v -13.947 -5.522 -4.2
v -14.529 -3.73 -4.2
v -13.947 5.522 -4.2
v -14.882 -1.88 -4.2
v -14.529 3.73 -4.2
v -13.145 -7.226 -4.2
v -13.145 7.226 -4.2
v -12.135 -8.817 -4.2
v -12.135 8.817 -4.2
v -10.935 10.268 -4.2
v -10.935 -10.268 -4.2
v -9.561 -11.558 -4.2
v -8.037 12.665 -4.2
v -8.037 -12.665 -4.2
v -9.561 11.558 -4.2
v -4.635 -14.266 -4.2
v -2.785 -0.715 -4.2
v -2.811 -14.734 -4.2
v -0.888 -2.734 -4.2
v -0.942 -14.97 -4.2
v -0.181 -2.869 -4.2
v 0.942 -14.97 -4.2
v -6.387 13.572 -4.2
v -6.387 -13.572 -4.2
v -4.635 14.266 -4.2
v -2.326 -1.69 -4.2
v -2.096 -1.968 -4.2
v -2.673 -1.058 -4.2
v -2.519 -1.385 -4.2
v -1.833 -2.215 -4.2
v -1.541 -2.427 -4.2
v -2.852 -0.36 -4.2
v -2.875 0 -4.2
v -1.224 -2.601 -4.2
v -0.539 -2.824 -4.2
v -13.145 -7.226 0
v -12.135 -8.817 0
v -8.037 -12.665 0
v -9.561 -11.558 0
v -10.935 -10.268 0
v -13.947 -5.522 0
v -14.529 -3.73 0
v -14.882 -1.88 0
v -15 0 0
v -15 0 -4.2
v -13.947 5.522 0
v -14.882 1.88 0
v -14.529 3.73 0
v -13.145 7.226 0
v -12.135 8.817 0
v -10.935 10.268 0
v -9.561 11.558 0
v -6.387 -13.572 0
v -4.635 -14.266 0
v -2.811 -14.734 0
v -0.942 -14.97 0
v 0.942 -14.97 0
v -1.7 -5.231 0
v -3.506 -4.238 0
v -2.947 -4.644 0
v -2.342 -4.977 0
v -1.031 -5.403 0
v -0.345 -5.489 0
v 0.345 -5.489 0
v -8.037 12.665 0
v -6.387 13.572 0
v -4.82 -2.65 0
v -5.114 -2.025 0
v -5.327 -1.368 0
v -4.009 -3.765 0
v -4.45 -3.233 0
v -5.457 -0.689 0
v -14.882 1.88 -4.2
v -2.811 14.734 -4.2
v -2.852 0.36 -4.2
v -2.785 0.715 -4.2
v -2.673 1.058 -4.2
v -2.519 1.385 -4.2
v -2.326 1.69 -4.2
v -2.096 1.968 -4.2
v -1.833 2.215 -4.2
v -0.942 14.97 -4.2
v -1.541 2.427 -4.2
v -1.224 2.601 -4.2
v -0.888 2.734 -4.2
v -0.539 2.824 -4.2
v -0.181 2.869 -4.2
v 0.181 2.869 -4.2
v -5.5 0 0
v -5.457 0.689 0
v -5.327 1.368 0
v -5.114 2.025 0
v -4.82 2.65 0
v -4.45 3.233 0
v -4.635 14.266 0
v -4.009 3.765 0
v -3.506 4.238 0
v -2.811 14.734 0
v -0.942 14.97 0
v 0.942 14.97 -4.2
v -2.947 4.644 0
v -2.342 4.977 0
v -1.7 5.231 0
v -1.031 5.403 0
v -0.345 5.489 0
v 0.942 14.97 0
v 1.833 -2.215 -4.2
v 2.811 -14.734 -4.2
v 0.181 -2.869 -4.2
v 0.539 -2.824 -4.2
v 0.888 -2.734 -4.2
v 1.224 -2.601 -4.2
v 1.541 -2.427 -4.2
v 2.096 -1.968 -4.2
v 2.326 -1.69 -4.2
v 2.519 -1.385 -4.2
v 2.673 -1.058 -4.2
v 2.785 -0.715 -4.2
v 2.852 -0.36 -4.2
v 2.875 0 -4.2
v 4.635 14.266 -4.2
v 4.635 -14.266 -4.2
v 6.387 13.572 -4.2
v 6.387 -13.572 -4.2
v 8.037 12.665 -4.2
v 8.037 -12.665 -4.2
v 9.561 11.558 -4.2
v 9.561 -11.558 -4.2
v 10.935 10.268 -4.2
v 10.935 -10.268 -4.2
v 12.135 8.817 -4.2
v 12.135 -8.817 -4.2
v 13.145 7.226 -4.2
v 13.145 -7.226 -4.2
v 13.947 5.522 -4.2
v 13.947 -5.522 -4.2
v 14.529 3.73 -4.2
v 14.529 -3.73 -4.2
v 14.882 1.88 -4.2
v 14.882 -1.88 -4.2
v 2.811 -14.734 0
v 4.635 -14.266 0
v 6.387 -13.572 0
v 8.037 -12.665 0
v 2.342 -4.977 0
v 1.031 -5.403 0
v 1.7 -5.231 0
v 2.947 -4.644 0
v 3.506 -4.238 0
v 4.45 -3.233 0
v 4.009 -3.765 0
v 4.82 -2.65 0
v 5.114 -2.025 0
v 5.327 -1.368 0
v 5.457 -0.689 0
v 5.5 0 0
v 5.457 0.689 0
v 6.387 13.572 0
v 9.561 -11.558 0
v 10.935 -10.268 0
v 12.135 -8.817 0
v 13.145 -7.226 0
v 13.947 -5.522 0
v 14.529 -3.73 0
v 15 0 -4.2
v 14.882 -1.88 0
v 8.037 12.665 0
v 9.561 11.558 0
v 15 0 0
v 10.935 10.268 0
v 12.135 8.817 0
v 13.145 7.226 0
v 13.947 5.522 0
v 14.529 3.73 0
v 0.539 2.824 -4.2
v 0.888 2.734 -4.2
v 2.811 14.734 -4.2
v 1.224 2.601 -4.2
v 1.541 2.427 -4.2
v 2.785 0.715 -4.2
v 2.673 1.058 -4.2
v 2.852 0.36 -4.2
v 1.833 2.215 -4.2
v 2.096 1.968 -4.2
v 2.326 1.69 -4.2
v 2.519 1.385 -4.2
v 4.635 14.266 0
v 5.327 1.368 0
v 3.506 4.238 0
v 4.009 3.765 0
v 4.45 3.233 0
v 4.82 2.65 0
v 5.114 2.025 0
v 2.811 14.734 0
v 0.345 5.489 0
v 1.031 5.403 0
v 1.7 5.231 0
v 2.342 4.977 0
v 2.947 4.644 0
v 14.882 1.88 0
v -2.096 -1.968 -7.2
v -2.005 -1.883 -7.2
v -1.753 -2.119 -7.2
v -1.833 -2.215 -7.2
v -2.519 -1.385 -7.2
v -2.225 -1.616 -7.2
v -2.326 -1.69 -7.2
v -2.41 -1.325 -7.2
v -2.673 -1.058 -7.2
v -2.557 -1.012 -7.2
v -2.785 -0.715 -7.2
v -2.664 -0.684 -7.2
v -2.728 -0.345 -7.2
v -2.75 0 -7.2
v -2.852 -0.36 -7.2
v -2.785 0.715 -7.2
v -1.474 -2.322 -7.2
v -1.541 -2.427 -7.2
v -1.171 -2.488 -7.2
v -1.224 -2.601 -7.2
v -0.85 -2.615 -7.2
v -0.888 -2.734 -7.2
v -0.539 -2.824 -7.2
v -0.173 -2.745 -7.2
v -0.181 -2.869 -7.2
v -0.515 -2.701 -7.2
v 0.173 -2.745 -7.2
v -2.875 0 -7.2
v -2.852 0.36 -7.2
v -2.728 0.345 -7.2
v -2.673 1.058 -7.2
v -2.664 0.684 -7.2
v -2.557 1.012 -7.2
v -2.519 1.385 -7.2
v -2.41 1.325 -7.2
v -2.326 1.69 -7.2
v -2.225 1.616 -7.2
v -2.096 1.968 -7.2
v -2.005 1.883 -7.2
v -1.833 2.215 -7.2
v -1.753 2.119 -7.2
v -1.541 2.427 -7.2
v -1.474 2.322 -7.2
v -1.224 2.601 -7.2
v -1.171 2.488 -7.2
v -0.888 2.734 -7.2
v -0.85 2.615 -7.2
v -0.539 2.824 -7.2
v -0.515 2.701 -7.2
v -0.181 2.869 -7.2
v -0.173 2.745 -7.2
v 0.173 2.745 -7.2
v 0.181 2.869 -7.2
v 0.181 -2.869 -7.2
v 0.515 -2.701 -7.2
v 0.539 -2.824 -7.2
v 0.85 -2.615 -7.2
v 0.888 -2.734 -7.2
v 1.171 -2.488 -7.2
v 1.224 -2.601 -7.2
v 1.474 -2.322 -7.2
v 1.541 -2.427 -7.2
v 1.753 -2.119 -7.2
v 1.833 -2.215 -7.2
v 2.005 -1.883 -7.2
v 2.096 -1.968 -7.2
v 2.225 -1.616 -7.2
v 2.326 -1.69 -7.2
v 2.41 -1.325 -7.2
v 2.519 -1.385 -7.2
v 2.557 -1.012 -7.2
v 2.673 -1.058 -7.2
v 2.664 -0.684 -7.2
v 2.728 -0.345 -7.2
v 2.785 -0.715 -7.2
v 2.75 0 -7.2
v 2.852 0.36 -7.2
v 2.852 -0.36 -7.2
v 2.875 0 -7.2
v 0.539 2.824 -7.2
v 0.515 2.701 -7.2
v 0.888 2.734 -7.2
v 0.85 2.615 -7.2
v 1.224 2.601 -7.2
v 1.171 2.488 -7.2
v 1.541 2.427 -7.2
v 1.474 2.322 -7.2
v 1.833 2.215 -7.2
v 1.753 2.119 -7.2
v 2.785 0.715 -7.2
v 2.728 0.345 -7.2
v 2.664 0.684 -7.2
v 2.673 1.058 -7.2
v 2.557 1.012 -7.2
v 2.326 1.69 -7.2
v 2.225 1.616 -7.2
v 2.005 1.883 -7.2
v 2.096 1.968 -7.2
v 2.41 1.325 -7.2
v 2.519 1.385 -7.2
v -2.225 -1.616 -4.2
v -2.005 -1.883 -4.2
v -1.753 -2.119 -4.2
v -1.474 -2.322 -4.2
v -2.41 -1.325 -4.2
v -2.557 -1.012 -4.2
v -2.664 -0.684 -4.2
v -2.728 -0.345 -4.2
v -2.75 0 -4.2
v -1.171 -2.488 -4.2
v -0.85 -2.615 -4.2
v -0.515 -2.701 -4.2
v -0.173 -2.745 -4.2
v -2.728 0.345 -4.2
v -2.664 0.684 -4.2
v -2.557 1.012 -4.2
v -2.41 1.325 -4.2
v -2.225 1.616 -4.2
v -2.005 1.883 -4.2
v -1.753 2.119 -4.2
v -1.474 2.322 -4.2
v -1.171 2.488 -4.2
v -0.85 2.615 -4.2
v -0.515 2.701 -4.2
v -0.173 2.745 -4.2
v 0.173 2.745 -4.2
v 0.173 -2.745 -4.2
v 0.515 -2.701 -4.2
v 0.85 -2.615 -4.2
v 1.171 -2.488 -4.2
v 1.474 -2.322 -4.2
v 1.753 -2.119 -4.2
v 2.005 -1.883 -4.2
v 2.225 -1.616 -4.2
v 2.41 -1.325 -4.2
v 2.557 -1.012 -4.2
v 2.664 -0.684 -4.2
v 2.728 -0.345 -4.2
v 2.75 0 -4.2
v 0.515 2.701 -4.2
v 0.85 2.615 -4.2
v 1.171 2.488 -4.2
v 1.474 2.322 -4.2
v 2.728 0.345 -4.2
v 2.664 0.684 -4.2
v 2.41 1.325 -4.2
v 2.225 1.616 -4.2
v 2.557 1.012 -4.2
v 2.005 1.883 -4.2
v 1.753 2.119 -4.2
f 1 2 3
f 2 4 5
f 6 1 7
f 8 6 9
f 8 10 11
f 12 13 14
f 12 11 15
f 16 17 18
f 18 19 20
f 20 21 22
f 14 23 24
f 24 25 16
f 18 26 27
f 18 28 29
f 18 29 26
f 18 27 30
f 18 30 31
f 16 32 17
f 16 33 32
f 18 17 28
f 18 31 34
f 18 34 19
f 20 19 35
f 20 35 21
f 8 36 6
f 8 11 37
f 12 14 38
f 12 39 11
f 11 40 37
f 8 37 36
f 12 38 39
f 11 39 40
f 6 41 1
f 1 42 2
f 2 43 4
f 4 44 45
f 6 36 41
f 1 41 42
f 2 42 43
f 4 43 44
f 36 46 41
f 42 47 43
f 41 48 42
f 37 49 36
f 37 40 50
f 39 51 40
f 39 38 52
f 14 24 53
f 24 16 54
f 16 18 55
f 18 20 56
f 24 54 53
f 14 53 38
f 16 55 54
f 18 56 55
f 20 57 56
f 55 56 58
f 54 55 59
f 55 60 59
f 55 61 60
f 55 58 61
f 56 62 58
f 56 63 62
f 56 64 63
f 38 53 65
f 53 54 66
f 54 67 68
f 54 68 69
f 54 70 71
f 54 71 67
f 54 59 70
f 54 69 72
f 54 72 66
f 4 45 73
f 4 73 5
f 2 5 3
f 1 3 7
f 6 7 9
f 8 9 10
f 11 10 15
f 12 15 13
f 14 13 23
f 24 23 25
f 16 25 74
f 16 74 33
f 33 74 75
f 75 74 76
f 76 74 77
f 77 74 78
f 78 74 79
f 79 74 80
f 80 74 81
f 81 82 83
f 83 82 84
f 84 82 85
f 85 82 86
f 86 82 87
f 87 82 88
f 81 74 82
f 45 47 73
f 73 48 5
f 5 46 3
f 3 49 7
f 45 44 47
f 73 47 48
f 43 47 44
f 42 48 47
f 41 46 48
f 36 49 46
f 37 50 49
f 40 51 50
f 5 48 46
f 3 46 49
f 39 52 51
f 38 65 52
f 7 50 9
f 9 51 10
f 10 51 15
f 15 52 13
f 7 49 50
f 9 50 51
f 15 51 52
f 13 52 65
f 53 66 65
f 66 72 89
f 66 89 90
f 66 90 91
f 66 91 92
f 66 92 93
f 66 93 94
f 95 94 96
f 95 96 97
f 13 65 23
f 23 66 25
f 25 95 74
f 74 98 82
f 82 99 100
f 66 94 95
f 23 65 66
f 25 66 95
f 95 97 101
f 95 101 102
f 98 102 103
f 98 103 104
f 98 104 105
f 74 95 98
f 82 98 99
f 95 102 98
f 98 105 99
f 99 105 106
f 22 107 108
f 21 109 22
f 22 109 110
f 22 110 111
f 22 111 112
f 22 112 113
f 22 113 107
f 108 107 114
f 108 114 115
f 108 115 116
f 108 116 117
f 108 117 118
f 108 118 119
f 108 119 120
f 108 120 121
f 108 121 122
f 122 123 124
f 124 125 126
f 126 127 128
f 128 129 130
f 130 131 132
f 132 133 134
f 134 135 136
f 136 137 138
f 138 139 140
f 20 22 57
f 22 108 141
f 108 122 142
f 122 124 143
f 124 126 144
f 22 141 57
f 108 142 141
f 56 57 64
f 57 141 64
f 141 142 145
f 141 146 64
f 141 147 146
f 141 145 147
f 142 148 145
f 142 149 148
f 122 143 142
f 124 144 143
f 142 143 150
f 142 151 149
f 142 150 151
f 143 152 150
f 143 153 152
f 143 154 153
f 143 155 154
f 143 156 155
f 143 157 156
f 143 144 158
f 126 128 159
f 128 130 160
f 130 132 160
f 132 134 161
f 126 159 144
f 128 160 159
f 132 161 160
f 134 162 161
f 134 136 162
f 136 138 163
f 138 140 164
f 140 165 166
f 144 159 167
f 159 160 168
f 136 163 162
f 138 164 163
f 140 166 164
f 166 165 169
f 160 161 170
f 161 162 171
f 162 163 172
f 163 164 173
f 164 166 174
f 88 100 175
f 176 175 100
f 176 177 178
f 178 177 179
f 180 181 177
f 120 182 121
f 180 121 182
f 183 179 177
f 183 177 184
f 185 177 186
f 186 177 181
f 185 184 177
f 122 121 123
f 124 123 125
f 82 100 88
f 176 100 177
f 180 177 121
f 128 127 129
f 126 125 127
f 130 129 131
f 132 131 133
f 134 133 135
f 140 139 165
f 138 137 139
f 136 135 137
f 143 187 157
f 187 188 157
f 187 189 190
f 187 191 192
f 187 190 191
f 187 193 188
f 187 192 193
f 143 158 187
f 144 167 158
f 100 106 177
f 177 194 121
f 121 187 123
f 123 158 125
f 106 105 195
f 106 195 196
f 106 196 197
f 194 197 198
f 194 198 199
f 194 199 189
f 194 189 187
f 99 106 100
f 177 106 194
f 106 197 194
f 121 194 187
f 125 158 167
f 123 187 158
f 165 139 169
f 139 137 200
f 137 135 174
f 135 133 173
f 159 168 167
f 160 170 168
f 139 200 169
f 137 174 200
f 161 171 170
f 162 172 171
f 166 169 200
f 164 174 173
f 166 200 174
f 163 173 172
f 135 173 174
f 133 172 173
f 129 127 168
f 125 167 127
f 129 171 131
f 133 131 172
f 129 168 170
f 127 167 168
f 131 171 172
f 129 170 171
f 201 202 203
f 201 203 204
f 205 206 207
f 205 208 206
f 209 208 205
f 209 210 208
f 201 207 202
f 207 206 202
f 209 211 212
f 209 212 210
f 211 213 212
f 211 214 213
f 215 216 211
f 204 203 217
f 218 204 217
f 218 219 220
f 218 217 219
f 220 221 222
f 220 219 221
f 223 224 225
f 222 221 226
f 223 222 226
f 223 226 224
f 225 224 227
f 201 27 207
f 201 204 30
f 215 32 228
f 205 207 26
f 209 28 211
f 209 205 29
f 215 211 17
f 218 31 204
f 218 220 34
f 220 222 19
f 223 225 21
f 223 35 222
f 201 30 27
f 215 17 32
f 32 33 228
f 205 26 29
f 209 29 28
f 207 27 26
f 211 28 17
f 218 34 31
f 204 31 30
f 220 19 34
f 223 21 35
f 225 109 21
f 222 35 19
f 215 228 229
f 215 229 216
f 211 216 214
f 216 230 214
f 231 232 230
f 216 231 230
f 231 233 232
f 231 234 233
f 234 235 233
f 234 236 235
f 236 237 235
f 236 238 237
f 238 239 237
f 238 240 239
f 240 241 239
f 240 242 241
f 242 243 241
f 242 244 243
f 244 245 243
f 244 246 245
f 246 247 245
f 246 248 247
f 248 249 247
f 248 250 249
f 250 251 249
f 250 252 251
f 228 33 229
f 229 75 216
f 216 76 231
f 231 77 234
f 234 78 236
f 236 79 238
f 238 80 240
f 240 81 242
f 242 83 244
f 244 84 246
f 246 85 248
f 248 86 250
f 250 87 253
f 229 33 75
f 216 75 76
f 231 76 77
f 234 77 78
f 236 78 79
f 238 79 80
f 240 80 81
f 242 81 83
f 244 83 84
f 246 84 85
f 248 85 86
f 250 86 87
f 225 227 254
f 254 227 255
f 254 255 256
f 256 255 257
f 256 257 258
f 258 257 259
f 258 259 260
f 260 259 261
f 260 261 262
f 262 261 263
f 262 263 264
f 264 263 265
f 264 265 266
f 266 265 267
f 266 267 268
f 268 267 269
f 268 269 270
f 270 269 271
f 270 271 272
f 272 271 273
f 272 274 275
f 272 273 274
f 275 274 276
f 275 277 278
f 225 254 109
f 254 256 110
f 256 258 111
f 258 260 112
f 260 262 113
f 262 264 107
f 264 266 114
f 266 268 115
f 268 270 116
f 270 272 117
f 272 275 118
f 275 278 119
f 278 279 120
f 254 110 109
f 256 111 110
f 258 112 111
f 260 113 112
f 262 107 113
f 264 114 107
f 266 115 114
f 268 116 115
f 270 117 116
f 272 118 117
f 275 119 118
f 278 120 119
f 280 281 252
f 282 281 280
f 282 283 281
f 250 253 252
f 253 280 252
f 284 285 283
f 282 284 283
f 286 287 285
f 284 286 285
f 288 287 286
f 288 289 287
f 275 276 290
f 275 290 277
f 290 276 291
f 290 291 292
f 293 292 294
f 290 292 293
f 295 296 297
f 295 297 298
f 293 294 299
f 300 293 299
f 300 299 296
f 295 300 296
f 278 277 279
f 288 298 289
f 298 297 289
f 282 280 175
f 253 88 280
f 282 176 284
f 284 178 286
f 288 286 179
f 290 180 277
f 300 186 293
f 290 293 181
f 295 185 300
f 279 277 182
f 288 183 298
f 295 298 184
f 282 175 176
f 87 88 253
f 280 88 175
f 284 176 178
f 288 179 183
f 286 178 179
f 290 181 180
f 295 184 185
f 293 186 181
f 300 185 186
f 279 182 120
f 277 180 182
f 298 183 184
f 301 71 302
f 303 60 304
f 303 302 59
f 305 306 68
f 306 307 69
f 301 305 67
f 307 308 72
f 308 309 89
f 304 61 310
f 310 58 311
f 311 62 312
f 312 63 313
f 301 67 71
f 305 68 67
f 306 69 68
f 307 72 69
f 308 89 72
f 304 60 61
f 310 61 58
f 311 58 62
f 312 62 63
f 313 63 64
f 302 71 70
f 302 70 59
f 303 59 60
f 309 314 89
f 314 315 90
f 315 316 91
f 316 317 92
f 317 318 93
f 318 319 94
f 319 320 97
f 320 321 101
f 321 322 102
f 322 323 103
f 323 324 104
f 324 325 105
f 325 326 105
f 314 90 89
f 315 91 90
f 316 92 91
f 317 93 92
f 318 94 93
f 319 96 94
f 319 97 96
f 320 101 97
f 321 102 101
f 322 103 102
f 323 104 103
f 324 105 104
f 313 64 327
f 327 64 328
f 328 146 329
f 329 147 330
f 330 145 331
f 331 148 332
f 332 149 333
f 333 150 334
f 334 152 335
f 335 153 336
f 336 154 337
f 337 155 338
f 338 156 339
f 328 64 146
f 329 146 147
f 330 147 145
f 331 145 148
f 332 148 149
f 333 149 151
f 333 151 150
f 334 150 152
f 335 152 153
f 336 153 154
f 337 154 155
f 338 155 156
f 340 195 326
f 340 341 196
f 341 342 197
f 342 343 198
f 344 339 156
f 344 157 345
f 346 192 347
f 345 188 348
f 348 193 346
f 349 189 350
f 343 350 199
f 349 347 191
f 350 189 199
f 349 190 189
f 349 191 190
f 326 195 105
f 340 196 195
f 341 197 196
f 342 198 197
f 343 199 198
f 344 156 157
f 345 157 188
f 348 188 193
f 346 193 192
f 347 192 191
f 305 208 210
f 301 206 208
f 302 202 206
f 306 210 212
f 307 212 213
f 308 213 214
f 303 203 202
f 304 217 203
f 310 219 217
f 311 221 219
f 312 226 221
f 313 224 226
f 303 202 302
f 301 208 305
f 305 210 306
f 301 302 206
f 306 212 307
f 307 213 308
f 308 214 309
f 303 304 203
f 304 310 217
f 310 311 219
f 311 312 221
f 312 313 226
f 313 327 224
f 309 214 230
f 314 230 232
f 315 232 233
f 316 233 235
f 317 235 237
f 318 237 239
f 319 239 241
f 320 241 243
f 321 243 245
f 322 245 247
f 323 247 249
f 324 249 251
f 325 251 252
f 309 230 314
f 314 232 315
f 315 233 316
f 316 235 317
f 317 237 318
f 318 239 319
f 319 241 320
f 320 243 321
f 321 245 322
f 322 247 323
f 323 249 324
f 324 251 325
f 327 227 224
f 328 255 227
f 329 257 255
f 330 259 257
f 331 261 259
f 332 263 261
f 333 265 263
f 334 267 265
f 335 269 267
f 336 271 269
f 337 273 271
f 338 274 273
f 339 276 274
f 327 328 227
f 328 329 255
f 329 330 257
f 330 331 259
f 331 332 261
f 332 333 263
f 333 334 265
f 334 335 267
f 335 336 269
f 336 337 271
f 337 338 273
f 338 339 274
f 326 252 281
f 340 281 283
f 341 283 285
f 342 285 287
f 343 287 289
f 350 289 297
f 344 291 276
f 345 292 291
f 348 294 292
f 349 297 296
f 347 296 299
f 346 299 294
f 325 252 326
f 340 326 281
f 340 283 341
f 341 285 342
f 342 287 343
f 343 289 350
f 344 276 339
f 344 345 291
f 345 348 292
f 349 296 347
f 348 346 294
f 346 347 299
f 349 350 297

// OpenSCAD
$fn = 50;

difference() {
	union() {
		translate(v = [0, 0, -4.2]) {
			cylinder(h = 4.2, r = 15.0);
		}
		#translate(v = [0, 0, -7.2]) {
			cylinder(h = 7.2, r = 2.875);
		}
	}
	union() {
		translate(v = [0, 0, 0]) {
			rotate(a = [0, 0, 0]) {
				difference() {
					union() {
						translate(v = [0, 0, -7.2]) {
							cylinder(h = 7.2, r = 2.25);
						}
						translate(v = [0, 0, -4.2]) {
							cylinder(h = 4.2, r1 = 2.75, r2 = 5.5);
						}
						translate(v = [0, 0, -7.2]) {
							cylinder(h = 7.2, r = 2.75);
						}
						translate(v = [0, 0, -7.2]) {
							cylinder(h = 7.2, r = 2.25);
						}
					}
					union();
				}
			}
		}
	}
}
